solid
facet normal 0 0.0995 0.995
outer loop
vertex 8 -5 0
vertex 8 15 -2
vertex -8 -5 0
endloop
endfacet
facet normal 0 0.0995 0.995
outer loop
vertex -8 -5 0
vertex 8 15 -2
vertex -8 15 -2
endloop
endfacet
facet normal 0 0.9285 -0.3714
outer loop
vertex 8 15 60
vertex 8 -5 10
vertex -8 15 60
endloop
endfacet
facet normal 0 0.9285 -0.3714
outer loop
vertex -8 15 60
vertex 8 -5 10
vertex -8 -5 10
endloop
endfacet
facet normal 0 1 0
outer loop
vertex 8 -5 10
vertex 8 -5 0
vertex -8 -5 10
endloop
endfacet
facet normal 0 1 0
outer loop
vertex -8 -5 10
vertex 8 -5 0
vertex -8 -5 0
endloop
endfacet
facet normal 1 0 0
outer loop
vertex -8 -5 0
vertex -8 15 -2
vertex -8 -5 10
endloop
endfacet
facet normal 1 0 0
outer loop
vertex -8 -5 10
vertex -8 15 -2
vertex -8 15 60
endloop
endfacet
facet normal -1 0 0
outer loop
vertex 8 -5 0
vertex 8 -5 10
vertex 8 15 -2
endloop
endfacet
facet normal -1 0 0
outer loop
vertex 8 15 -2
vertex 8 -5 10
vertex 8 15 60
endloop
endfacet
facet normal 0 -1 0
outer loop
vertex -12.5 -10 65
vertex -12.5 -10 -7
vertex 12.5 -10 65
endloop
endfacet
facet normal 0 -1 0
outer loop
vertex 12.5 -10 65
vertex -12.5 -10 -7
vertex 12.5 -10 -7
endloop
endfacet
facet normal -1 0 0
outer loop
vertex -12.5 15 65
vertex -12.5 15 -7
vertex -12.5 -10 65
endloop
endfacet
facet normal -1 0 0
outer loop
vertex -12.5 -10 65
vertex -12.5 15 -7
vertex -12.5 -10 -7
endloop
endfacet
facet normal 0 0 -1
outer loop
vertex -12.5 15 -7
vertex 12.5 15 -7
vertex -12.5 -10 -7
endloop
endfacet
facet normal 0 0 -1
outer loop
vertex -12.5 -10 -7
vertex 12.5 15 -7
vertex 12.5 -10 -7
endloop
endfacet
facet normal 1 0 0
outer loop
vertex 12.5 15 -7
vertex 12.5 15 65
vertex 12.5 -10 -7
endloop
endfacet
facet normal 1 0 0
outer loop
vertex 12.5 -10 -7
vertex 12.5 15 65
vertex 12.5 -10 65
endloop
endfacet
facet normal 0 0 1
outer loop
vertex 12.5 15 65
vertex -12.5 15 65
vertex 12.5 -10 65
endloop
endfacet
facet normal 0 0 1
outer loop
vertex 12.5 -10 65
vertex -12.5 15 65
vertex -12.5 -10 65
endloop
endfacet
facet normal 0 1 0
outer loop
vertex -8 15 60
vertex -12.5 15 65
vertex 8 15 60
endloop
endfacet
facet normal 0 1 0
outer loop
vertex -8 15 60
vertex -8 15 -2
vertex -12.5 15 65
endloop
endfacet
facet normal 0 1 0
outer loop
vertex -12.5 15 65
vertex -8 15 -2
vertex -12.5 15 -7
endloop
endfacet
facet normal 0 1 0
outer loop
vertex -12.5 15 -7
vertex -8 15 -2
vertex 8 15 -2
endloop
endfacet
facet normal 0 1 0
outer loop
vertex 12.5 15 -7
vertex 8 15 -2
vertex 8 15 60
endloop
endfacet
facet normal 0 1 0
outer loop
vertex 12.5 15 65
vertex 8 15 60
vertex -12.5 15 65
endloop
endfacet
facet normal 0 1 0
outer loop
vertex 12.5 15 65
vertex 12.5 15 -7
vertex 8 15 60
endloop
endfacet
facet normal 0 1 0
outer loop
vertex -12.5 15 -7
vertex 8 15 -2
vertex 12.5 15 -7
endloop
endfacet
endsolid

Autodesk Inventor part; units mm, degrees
ref_plane "XZ Plane" through (0, 0, 0) normal (0, 1, 0) x (-1, 0, 0)
ref_plane "XY Plane" through (0, 0, 0) normal (0, 0, 1) x (1, 0, 0)
ref_plane "Work Plane1" through (8, 0, 0) normal (1, 0, 0) x (0, 1, 0)
sketch "Sketch4" plane through (8, 0, 0) normal (1, 0, 0) x (0, 1, 0)
  line L0 (-5, 0) -> (-5, 10)
  line L1 (15, 53) -> (15, -29) projected
  line L2 (-5, 0) -> (15, -2)
  line L3 (-5, 10) -> (15, 60)
  line L4 (15, 60) -> (15, -2)
  point P0 (0, 0)
  dimension "d9" = 10
  dimension "d10" = 20
  dimension "d11" = 2
  dimension "d12" = 60
sketch "Sketch5" plane through (0, 0, 0) normal (0, 1, 0) x (-1, 0, 0)
  line L0 (12.5, 65) -> (-12.5, 65)
  line L1 (-12.5, 65) -> (-12.5, -7)
  line L2 (-12.5, -7) -> (12.5, -7)
  line L3 (12.5, -7) -> (12.5, 65)
  line L4 (12.5, 65) -> (-12.5, -7) construction
  line L5 (-12.5, 65) -> (12.5, -7) construction
  point P0 (0, 0)
  point P1 (0, 29)
  dimension "d13" = 25
  dimension "d14" = 72
  dimension "d15" = 7
  dimension "d22" = 0
extrude "Extrusion2" add sketch "Sketch5" along normal blind 15 and the other way blind 10
extrude "Extrusion3" cut sketch "Sketch4" against normal blind 16
properties part number "Mould Design"
